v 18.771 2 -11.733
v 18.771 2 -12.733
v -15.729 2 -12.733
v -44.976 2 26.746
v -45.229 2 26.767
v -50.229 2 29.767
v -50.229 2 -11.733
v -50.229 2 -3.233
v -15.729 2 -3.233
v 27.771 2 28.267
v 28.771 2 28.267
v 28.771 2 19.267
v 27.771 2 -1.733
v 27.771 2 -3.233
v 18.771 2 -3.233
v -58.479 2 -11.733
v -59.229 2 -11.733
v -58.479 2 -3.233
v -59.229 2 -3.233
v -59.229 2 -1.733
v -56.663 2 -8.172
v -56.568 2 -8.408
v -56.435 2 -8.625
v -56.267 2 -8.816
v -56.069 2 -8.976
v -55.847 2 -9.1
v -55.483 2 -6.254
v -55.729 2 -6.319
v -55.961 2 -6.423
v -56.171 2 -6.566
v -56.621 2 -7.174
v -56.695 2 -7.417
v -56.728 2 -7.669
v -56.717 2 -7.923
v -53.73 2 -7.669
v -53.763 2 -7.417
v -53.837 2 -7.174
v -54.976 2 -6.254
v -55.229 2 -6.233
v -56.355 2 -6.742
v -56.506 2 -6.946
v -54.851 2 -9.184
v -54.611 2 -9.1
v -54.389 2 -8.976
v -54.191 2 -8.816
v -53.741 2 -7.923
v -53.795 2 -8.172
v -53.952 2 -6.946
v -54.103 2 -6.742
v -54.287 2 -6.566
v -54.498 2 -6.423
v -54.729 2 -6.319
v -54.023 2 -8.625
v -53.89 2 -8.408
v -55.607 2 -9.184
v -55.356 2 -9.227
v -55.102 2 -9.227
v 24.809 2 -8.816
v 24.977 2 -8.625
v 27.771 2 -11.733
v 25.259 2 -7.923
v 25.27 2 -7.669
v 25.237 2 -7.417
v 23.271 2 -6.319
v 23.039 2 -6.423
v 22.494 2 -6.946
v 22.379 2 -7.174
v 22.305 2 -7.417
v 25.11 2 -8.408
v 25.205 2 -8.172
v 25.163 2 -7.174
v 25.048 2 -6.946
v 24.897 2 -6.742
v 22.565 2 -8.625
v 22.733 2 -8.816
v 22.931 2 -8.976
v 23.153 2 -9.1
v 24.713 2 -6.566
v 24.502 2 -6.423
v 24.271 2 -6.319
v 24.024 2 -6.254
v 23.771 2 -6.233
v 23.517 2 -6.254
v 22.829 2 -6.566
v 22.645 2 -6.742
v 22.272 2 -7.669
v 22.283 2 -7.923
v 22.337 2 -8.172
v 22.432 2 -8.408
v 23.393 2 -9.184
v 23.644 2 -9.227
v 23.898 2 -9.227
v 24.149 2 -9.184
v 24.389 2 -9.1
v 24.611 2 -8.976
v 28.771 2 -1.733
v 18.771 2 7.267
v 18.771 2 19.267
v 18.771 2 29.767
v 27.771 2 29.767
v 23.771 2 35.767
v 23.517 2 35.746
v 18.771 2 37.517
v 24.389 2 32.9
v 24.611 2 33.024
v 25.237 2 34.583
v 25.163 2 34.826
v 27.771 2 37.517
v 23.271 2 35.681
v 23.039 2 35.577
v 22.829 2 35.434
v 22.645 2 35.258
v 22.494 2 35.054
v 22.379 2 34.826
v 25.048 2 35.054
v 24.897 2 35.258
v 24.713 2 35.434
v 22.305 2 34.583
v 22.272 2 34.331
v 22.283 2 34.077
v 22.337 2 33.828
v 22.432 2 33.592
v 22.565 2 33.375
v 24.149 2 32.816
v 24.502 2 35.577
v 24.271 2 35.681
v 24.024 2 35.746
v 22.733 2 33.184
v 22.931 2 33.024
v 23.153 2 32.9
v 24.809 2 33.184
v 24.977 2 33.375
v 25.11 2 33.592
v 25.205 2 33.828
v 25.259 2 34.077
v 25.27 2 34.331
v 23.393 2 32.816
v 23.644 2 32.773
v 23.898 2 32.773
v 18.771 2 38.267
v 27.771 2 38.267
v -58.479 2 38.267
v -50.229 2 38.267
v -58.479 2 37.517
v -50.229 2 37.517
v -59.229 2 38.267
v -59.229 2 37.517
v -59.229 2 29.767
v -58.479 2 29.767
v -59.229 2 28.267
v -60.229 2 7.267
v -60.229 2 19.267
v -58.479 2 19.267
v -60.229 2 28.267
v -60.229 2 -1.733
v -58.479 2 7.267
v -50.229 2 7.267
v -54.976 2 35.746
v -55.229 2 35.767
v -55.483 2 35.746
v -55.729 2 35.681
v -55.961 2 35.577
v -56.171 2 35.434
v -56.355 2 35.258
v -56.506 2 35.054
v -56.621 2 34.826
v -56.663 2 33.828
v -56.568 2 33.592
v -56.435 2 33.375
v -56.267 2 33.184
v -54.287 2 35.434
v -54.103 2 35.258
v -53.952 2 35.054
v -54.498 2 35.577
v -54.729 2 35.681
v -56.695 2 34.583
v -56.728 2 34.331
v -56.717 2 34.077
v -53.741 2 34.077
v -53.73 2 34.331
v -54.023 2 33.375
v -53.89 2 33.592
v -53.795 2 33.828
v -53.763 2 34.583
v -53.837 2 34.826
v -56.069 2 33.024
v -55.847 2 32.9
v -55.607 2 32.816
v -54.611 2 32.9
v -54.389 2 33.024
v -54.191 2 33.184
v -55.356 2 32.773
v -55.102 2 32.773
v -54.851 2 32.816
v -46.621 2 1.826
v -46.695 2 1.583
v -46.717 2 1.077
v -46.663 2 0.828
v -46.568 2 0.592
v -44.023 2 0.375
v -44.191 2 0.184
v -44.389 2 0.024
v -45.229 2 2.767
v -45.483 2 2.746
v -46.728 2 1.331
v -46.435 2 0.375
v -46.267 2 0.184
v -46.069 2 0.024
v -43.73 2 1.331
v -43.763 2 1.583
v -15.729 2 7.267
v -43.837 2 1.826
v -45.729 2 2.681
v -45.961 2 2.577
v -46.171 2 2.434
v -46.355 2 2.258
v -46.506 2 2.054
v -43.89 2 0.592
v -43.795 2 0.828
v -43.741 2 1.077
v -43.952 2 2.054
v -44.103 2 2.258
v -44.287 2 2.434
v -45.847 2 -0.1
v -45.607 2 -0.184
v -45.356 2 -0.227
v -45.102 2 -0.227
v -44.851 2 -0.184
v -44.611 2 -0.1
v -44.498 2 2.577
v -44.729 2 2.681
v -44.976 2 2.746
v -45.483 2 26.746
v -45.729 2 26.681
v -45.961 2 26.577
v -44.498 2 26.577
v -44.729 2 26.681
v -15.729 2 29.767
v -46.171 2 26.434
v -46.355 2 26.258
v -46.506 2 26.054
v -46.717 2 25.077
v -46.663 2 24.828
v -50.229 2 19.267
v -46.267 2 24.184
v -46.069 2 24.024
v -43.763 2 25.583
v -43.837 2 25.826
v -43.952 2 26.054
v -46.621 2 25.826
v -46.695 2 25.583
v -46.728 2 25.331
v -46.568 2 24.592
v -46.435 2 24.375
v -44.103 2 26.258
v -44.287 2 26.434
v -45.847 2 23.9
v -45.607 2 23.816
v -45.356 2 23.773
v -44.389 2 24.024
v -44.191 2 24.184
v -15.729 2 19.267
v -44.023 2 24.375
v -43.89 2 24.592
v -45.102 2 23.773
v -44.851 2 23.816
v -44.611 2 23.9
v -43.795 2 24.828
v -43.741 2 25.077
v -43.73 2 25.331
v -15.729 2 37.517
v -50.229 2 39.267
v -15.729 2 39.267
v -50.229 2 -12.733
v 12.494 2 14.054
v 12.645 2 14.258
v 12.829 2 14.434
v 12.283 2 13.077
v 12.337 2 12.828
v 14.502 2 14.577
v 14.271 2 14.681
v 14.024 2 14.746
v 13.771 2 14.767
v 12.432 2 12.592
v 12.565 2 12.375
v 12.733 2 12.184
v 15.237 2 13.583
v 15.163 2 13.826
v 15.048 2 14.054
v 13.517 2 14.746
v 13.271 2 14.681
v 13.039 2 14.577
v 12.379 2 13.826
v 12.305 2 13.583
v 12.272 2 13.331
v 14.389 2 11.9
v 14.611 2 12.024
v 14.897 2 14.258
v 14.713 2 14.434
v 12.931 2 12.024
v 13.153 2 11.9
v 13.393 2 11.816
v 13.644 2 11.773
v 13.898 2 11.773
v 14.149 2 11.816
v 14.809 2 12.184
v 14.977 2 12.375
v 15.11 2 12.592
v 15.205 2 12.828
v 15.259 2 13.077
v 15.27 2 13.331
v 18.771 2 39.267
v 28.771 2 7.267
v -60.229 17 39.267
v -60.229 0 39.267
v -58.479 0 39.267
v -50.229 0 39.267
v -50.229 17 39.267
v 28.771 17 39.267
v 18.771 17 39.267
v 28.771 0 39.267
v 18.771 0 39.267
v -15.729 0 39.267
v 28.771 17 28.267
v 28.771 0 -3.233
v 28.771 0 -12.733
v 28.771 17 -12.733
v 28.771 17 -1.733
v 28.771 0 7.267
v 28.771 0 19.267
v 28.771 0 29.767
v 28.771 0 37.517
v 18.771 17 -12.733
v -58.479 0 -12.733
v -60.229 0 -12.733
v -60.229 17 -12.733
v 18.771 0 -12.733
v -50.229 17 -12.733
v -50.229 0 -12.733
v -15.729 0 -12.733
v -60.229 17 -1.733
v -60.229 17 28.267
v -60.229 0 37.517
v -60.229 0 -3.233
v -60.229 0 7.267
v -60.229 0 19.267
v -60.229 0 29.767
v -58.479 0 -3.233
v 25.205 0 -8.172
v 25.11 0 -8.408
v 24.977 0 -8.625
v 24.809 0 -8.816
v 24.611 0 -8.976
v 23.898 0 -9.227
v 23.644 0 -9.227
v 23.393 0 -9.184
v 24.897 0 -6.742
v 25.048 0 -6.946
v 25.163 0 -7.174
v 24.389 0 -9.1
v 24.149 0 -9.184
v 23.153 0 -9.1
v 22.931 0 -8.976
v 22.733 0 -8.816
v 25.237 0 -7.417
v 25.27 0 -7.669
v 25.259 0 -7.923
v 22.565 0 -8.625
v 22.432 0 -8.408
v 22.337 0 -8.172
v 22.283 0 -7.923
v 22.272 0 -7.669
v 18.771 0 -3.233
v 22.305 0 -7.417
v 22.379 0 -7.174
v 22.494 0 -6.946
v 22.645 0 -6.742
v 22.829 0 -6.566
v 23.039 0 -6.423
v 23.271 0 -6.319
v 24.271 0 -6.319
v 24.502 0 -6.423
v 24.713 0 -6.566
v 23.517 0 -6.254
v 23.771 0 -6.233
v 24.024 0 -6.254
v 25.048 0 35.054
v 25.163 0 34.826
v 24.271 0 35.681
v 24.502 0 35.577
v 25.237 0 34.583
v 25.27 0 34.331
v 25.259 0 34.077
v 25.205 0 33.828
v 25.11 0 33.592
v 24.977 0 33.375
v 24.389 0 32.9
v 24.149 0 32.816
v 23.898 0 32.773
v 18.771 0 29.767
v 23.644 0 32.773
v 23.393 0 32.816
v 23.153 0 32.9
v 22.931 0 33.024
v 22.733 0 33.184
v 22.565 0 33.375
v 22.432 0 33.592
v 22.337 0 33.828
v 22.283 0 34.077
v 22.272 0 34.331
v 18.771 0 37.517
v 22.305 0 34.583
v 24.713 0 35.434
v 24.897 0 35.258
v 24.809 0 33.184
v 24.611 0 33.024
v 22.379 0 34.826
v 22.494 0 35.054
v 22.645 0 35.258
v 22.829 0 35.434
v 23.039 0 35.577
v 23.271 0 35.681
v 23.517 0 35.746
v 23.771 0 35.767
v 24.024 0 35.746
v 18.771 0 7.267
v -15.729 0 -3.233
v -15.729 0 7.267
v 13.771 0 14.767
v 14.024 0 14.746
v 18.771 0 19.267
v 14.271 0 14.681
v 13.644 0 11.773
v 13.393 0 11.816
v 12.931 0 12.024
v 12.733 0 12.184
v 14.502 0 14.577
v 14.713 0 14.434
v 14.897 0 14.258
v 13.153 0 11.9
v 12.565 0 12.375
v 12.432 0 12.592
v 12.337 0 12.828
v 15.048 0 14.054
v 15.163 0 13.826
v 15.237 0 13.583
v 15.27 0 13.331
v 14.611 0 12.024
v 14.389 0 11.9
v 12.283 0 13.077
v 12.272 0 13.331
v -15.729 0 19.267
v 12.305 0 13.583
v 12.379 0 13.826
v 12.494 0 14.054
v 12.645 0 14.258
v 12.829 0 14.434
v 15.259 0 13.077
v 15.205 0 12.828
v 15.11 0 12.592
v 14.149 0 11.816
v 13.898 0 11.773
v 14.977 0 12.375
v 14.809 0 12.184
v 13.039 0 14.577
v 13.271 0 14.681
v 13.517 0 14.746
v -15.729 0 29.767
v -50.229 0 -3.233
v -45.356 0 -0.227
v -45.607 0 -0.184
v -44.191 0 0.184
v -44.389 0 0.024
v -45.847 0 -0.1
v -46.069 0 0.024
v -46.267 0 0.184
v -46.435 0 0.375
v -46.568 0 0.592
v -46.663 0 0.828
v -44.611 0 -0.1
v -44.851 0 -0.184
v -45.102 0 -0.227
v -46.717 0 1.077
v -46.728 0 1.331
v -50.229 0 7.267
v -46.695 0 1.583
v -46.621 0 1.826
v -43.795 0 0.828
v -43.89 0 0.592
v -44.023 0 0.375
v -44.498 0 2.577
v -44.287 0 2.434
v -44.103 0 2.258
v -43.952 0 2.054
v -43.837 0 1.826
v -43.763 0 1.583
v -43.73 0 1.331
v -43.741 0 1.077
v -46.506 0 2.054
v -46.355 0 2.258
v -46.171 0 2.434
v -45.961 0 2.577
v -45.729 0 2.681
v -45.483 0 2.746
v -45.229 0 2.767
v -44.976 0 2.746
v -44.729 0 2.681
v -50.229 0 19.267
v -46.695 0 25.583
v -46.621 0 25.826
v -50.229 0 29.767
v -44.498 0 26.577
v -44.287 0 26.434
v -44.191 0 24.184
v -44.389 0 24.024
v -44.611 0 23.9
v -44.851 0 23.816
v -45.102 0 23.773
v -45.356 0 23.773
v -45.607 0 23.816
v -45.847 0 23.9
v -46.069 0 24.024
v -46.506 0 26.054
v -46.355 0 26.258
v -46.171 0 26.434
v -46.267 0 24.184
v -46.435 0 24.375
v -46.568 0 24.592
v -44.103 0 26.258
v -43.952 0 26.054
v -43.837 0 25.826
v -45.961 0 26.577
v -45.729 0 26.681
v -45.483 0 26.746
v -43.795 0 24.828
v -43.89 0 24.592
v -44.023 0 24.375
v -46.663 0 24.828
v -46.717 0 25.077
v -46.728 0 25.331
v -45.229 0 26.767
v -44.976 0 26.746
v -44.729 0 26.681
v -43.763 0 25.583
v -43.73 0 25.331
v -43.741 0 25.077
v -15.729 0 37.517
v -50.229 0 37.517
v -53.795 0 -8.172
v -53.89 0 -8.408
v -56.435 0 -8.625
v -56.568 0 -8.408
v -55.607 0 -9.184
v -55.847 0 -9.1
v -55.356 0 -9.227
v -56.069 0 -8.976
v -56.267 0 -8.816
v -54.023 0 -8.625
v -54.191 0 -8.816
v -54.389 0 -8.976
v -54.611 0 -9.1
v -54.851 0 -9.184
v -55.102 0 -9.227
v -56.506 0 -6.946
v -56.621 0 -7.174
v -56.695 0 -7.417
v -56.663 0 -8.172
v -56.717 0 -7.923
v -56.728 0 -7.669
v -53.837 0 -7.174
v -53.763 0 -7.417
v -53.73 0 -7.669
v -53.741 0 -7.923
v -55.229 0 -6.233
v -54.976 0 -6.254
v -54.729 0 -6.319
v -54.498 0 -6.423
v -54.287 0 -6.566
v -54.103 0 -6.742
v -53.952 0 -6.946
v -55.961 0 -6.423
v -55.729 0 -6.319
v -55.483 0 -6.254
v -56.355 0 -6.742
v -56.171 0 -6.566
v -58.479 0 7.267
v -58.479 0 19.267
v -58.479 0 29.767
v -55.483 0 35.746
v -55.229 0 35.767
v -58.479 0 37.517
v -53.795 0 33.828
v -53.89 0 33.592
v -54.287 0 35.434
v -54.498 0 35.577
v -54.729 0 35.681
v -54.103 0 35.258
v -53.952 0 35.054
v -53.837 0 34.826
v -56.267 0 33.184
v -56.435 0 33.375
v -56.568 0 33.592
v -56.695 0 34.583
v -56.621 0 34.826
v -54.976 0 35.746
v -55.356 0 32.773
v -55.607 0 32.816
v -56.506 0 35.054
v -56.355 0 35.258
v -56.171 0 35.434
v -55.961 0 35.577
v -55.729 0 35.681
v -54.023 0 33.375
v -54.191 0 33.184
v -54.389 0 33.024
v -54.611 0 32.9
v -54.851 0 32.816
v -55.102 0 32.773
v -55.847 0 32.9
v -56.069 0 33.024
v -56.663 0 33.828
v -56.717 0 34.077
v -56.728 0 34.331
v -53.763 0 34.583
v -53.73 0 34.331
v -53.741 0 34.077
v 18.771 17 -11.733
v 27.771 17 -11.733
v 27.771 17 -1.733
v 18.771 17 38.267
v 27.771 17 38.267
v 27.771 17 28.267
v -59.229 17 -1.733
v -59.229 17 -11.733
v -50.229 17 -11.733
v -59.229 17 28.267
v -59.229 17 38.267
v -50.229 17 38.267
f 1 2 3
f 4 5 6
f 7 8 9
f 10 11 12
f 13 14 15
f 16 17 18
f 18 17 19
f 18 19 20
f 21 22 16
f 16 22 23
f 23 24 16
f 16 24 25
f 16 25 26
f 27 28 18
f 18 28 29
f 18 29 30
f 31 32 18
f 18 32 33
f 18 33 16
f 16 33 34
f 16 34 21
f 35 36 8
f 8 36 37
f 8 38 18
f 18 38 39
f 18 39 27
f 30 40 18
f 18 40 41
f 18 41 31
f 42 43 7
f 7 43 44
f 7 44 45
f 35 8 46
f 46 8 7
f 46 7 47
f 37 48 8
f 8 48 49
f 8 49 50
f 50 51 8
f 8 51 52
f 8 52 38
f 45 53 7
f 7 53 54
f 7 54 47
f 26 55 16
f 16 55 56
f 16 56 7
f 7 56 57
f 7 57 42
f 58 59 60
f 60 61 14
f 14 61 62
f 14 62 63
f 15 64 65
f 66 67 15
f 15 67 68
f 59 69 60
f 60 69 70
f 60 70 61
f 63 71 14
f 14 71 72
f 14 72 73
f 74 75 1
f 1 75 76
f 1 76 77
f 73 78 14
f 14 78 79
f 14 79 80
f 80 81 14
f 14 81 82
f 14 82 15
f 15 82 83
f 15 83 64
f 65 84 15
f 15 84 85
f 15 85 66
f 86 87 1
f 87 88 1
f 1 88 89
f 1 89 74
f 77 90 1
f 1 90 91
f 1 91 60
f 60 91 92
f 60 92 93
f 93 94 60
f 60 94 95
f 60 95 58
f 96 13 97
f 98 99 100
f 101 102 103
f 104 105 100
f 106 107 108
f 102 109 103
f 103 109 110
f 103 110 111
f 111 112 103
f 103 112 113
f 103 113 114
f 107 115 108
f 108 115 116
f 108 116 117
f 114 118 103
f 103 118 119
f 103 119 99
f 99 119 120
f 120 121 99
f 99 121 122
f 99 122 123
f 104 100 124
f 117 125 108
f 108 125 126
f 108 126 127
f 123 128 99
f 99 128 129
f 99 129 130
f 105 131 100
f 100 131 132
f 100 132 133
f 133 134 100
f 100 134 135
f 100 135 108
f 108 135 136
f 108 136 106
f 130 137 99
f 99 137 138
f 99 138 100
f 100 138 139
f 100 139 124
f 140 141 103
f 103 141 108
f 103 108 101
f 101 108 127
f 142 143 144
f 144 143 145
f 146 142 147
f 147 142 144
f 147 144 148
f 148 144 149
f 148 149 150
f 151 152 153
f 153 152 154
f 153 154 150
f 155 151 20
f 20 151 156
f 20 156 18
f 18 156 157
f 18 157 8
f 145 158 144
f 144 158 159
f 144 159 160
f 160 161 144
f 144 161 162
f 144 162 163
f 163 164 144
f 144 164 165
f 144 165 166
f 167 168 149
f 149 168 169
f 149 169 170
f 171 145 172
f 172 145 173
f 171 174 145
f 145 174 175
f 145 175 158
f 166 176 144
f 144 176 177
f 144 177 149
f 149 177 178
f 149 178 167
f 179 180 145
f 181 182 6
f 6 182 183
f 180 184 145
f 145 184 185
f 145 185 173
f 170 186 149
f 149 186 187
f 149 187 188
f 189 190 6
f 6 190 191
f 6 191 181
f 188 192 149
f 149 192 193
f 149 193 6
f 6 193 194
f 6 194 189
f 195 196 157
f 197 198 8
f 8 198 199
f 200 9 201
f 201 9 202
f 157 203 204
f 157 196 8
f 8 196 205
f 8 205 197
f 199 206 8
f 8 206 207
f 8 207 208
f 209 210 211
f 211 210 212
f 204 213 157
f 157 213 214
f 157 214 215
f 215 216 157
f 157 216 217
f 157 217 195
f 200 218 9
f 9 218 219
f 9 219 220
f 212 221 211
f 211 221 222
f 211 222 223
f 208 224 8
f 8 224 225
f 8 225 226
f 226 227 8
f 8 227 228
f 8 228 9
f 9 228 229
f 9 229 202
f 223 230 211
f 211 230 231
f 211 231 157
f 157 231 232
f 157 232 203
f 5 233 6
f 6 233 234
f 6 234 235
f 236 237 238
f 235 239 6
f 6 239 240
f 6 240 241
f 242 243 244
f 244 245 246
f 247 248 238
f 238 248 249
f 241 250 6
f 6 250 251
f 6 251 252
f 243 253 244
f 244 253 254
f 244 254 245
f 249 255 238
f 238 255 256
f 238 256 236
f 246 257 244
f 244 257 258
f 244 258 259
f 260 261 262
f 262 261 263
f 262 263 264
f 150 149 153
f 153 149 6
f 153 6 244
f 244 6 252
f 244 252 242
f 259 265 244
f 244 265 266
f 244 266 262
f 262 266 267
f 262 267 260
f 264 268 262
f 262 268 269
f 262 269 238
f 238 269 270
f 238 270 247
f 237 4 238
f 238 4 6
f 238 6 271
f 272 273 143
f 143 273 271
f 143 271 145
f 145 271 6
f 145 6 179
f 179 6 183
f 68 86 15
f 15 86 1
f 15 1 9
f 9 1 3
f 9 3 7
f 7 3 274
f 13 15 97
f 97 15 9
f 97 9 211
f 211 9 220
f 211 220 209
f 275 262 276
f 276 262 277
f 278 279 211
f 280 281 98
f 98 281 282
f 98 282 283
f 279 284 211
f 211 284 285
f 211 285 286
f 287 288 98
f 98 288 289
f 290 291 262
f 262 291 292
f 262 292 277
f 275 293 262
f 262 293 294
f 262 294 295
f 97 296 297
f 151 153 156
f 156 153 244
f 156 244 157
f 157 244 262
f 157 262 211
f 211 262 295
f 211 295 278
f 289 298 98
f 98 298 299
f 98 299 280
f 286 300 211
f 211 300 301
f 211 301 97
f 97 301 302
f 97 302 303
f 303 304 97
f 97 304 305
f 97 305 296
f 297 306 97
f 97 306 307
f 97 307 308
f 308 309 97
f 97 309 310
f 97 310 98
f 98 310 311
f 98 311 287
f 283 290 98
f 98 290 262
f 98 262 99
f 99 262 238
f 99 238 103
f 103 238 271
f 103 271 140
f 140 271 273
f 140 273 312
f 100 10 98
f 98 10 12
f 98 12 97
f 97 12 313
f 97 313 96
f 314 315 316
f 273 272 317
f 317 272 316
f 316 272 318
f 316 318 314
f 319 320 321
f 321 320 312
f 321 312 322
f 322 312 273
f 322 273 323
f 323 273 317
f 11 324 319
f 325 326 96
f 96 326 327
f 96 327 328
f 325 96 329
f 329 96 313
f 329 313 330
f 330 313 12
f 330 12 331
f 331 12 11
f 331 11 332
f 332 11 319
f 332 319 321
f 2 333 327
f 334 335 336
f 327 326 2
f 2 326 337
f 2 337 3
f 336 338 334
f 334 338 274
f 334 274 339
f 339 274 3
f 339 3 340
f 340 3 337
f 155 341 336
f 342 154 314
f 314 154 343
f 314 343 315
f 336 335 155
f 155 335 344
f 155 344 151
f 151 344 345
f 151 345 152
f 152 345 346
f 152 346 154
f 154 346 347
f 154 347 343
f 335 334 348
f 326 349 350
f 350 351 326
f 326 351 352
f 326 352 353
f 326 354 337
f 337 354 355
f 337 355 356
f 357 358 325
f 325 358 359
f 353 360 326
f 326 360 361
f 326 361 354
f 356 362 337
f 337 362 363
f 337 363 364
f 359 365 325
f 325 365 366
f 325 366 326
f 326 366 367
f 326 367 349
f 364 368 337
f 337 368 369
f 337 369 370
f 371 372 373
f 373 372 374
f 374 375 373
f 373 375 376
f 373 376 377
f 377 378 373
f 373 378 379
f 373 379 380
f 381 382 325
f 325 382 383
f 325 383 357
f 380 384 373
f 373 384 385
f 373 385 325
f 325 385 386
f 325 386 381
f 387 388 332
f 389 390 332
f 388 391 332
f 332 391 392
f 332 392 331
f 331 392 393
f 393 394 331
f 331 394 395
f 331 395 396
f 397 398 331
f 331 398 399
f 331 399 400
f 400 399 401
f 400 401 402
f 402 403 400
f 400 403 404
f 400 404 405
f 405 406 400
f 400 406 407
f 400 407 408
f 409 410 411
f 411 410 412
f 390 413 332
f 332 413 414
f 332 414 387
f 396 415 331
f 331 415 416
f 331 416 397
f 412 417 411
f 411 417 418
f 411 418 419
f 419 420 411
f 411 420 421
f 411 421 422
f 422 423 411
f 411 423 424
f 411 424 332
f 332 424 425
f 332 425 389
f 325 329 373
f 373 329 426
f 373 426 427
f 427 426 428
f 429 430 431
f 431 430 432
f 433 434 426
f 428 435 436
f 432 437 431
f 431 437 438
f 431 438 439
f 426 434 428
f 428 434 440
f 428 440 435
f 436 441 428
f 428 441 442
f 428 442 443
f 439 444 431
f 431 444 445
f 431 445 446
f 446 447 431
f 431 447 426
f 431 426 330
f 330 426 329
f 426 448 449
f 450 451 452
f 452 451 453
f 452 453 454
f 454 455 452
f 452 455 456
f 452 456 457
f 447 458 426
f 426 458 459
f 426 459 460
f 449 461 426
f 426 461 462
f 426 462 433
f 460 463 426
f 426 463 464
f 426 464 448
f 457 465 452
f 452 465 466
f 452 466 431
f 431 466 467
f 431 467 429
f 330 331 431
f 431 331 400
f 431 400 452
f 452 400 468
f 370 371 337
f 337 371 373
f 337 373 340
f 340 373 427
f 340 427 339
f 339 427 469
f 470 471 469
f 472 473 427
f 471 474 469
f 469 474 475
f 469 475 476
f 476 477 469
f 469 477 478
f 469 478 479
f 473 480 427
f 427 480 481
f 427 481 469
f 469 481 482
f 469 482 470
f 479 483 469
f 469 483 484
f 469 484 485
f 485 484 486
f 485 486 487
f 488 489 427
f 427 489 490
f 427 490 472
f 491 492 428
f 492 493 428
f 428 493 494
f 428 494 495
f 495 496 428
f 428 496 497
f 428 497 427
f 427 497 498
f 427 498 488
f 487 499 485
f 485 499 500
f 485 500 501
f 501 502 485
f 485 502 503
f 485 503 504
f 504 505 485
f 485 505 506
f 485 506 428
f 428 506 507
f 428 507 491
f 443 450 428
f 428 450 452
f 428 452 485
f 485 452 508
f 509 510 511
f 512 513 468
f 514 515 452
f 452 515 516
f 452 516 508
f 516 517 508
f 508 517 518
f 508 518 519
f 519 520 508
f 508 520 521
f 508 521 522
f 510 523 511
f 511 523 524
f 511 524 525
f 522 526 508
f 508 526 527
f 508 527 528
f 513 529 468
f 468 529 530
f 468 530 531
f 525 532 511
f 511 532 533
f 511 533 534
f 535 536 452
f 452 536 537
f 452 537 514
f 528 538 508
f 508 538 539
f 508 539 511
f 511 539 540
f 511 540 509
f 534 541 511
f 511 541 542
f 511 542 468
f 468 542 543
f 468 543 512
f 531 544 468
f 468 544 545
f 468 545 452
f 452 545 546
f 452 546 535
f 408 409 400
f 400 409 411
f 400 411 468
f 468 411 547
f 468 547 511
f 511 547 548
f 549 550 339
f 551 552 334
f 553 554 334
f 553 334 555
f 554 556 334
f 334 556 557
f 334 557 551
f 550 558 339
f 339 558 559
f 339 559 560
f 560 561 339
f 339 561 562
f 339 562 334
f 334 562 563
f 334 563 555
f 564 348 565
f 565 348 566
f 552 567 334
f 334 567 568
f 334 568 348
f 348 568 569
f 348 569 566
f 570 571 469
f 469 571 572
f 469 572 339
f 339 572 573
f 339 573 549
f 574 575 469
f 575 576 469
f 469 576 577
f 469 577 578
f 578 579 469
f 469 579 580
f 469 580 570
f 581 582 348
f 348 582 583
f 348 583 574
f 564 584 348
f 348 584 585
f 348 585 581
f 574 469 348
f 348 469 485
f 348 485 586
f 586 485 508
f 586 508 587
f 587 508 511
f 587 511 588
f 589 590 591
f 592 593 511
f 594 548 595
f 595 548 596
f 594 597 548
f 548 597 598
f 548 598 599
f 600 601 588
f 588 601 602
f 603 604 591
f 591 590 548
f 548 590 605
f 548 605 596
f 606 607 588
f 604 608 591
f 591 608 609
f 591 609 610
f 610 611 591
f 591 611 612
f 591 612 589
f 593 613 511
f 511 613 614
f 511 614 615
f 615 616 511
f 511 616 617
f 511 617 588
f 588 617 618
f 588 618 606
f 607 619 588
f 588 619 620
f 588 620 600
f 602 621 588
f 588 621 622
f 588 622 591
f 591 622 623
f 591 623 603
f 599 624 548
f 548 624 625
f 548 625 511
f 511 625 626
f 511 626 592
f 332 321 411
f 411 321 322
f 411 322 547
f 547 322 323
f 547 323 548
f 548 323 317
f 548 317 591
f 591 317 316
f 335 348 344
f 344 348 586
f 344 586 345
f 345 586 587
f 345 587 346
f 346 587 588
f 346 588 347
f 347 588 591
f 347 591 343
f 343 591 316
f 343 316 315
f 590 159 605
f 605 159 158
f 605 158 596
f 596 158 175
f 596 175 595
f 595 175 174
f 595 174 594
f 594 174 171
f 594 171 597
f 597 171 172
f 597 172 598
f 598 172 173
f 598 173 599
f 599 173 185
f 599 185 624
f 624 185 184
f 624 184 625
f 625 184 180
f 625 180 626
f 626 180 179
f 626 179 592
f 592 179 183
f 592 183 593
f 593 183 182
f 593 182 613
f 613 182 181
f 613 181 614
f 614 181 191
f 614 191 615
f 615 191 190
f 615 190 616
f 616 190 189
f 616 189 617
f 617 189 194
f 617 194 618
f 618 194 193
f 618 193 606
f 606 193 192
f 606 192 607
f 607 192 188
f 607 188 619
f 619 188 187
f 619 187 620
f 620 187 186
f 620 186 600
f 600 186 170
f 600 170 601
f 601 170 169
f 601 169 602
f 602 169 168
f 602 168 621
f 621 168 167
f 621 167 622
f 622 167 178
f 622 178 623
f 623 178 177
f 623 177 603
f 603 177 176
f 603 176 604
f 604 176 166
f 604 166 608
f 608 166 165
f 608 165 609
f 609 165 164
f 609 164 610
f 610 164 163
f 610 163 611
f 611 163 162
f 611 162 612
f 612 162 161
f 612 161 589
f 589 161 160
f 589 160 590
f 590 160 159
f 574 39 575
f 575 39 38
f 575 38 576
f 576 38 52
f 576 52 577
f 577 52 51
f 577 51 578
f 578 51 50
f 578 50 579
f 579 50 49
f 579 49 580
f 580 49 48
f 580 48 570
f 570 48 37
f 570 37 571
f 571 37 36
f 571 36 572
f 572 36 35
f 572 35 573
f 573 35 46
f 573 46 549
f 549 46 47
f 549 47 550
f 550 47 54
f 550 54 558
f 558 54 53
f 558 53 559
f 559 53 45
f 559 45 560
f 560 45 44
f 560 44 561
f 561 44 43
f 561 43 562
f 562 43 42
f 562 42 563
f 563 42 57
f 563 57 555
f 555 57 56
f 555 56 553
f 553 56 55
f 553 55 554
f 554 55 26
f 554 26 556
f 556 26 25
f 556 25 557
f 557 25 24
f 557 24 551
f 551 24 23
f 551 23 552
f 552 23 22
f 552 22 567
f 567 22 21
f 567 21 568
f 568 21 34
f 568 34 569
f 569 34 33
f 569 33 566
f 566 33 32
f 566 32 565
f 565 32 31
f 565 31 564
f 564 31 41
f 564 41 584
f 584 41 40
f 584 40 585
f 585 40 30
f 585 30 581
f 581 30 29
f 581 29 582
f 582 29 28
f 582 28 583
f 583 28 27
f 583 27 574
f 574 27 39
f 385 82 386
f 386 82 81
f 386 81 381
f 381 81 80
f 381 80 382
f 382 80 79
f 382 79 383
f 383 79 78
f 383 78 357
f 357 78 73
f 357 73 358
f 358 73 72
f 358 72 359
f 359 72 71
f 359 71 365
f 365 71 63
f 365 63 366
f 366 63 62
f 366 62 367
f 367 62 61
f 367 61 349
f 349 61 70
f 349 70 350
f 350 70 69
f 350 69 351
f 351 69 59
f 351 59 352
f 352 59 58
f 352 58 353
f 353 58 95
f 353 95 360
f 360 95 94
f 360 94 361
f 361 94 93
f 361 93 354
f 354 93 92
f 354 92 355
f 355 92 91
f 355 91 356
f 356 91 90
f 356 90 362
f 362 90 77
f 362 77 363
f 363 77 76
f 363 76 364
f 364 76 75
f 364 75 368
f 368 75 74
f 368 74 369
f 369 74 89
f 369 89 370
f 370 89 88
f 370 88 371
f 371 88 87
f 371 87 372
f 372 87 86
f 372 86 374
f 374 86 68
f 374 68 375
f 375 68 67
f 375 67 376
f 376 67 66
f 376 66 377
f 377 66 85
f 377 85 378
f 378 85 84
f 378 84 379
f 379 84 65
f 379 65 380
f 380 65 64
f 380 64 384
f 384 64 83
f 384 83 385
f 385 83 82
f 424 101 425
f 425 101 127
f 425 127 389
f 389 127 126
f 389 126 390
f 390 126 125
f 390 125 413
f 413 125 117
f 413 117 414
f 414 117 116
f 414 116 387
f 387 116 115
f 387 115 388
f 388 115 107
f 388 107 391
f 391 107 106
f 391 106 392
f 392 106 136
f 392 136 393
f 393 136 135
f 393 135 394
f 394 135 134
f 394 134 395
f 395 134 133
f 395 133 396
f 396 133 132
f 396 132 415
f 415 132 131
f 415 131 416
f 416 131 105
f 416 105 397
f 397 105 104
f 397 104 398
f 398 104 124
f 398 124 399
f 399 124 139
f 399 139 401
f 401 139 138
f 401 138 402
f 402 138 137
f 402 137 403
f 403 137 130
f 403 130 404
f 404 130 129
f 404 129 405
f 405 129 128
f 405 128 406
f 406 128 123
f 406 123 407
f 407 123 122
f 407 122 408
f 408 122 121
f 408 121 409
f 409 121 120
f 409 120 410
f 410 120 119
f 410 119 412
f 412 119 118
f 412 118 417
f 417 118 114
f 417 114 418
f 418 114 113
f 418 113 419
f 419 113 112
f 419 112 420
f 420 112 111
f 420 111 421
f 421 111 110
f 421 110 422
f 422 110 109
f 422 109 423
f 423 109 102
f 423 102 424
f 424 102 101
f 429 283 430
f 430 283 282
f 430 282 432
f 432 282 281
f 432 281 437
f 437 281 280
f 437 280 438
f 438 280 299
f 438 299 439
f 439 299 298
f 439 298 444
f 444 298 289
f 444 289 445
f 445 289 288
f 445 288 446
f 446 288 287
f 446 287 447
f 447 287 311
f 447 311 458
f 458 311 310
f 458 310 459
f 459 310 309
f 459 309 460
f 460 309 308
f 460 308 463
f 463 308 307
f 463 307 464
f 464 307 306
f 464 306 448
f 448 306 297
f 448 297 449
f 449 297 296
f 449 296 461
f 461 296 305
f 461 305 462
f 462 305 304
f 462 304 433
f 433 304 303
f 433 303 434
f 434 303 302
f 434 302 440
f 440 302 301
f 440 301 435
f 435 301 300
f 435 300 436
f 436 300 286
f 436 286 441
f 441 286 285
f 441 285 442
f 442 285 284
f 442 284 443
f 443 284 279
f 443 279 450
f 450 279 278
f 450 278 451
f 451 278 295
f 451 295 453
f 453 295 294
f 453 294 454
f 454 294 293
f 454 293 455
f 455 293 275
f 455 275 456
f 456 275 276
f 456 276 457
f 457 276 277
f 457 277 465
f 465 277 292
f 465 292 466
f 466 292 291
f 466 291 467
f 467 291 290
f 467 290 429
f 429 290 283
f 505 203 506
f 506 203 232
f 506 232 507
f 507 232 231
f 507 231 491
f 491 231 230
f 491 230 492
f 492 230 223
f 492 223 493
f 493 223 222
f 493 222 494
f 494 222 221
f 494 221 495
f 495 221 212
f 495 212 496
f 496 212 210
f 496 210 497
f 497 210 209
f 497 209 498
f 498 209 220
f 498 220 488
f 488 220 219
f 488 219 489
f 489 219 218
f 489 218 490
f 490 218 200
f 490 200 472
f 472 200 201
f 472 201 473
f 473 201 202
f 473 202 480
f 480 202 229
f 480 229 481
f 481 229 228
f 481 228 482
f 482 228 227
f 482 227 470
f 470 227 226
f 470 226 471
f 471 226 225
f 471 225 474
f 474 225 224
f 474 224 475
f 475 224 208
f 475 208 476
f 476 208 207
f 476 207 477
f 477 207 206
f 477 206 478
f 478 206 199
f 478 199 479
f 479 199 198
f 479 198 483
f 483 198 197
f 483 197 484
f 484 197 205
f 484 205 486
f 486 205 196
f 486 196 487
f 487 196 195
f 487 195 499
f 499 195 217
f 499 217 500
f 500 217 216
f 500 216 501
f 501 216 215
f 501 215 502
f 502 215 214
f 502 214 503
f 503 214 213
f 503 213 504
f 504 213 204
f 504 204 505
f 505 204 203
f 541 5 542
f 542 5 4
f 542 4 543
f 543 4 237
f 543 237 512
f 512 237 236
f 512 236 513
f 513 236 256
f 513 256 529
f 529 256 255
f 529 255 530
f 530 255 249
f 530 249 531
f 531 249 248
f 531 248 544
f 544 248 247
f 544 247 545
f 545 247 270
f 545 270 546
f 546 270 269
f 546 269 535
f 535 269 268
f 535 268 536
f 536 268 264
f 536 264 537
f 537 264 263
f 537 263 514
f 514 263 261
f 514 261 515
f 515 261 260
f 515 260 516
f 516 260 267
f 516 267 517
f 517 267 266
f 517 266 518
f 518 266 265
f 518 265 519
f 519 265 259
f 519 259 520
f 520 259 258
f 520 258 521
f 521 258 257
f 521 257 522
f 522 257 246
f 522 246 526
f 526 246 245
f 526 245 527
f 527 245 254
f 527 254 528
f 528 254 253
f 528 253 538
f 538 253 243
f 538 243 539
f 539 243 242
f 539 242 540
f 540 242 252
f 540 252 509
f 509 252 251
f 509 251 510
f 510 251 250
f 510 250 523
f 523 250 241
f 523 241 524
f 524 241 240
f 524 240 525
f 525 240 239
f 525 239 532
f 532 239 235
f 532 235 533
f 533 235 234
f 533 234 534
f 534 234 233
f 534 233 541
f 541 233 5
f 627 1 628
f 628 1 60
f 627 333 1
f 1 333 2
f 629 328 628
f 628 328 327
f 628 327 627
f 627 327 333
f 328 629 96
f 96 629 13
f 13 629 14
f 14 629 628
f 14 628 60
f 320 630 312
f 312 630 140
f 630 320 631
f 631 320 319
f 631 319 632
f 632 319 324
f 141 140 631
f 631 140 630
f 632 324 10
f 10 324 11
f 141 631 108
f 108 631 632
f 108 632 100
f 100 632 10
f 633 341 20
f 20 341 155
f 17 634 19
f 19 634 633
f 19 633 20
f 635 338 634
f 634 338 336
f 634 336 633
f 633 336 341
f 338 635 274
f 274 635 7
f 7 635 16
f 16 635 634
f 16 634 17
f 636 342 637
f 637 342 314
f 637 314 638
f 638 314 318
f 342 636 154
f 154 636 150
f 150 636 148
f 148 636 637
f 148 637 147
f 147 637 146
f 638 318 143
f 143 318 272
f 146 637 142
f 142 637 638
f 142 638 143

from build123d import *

# Parameters (mm, degrees)
SKETCH1_W           = 89
SKETCH1_H           = 52
BOSS_EXTRUDE1_DEPTH = 2
SKETCH2_R           = 1.5
CUT_EXTRUDE1_DEPTH  = 3
SKETCH5_R           = 1.5
CUT_EXTRUDE3_DEPTH  = 3
BOSS_EXTRUDE3_DEPTH = 15


with BuildPart() as part:
    # Sketch1 → Boss-Extrude1 (new body)
    with BuildSketch(Plane(origin=(0, 0, 0), x_dir=(1, 0, 0), z_dir=(0, 1, 0))):
        with Locations((-15.729105331, -13.267137121)):
            Rectangle(SKETCH1_W, SKETCH1_H)
    extrude(amount=BOSS_EXTRUDE1_DEPTH)

    # Sketch2 → Cut-Extrude1 (cut, through all)
    with BuildSketch(Plane(origin=(0, 2, 0), x_dir=(1, 0, 0), z_dir=(0, 1, 0))):
        with Locations((-55.229105331, -34.267137121)):
            Circle(SKETCH2_R)
        with Locations((-55.229105331, 7.732862879)):
            Circle(SKETCH2_R)
        with Locations((23.770894669, 7.732862879)):
            Circle(SKETCH2_R)
        with Locations((23.770894669, -34.267137121)):
            Circle(SKETCH2_R)
    extrude(amount=-CUT_EXTRUDE1_DEPTH, mode=Mode.SUBTRACT)

    # Sketch5 → Cut-Extrude3 (cut, through all)
    with BuildSketch(Plane(origin=(0, 2, 0), x_dir=(1, 0, 0), z_dir=(0, 1, 0))):
        with Locations((-45.229105331, -25.267137121)):
            Circle(SKETCH5_R)
        with Locations((-45.229105331, -1.267137121)):
            Circle(SKETCH5_R)
        with Locations((13.770894669, -13.267137121)):
            Circle(SKETCH5_R)
    extrude(amount=-CUT_EXTRUDE3_DEPTH, mode=Mode.SUBTRACT)

    # Sketch6 → Boss-Extrude3 (add)
    with BuildSketch(Plane(origin=(0, 2, 0), x_dir=(1, 0, 0), z_dir=(0, 1, 0))):
        Polygon((-60.229105331, -28.267137121), (-60.229105331, -39.267137121), (-50.229105331, -39.267137121), (-50.229105331, -38.267137121), (-59.229105331, -38.267137121), (-59.229105331, -28.267137121), align=None)
        Polygon((-60.229105331, 1.732862879), (-59.229105331, 1.732862879), (-59.229105331, 11.732862879), (-50.229105331, 11.732862879), (-50.229105331, 12.732862879), (-60.229105331, 12.732862879), align=None)
        Polygon((27.770894669, -28.267137121), (27.770894669, -38.267137121), (18.770894669, -38.267137121), (18.770894669, -39.267137121), (28.770894669, -39.267137121), (28.770894669, -28.267137121), align=None)
        Polygon((27.770894669, 11.732862879), (27.770894669, 1.732862879), (28.770894669, 1.732862879), (28.770894669, 12.732862879), (18.770894669, 12.732862879), (18.770894669, 11.732862879), align=None)
    extrude(amount=BOSS_EXTRUDE3_DEPTH)


solid = part.part
